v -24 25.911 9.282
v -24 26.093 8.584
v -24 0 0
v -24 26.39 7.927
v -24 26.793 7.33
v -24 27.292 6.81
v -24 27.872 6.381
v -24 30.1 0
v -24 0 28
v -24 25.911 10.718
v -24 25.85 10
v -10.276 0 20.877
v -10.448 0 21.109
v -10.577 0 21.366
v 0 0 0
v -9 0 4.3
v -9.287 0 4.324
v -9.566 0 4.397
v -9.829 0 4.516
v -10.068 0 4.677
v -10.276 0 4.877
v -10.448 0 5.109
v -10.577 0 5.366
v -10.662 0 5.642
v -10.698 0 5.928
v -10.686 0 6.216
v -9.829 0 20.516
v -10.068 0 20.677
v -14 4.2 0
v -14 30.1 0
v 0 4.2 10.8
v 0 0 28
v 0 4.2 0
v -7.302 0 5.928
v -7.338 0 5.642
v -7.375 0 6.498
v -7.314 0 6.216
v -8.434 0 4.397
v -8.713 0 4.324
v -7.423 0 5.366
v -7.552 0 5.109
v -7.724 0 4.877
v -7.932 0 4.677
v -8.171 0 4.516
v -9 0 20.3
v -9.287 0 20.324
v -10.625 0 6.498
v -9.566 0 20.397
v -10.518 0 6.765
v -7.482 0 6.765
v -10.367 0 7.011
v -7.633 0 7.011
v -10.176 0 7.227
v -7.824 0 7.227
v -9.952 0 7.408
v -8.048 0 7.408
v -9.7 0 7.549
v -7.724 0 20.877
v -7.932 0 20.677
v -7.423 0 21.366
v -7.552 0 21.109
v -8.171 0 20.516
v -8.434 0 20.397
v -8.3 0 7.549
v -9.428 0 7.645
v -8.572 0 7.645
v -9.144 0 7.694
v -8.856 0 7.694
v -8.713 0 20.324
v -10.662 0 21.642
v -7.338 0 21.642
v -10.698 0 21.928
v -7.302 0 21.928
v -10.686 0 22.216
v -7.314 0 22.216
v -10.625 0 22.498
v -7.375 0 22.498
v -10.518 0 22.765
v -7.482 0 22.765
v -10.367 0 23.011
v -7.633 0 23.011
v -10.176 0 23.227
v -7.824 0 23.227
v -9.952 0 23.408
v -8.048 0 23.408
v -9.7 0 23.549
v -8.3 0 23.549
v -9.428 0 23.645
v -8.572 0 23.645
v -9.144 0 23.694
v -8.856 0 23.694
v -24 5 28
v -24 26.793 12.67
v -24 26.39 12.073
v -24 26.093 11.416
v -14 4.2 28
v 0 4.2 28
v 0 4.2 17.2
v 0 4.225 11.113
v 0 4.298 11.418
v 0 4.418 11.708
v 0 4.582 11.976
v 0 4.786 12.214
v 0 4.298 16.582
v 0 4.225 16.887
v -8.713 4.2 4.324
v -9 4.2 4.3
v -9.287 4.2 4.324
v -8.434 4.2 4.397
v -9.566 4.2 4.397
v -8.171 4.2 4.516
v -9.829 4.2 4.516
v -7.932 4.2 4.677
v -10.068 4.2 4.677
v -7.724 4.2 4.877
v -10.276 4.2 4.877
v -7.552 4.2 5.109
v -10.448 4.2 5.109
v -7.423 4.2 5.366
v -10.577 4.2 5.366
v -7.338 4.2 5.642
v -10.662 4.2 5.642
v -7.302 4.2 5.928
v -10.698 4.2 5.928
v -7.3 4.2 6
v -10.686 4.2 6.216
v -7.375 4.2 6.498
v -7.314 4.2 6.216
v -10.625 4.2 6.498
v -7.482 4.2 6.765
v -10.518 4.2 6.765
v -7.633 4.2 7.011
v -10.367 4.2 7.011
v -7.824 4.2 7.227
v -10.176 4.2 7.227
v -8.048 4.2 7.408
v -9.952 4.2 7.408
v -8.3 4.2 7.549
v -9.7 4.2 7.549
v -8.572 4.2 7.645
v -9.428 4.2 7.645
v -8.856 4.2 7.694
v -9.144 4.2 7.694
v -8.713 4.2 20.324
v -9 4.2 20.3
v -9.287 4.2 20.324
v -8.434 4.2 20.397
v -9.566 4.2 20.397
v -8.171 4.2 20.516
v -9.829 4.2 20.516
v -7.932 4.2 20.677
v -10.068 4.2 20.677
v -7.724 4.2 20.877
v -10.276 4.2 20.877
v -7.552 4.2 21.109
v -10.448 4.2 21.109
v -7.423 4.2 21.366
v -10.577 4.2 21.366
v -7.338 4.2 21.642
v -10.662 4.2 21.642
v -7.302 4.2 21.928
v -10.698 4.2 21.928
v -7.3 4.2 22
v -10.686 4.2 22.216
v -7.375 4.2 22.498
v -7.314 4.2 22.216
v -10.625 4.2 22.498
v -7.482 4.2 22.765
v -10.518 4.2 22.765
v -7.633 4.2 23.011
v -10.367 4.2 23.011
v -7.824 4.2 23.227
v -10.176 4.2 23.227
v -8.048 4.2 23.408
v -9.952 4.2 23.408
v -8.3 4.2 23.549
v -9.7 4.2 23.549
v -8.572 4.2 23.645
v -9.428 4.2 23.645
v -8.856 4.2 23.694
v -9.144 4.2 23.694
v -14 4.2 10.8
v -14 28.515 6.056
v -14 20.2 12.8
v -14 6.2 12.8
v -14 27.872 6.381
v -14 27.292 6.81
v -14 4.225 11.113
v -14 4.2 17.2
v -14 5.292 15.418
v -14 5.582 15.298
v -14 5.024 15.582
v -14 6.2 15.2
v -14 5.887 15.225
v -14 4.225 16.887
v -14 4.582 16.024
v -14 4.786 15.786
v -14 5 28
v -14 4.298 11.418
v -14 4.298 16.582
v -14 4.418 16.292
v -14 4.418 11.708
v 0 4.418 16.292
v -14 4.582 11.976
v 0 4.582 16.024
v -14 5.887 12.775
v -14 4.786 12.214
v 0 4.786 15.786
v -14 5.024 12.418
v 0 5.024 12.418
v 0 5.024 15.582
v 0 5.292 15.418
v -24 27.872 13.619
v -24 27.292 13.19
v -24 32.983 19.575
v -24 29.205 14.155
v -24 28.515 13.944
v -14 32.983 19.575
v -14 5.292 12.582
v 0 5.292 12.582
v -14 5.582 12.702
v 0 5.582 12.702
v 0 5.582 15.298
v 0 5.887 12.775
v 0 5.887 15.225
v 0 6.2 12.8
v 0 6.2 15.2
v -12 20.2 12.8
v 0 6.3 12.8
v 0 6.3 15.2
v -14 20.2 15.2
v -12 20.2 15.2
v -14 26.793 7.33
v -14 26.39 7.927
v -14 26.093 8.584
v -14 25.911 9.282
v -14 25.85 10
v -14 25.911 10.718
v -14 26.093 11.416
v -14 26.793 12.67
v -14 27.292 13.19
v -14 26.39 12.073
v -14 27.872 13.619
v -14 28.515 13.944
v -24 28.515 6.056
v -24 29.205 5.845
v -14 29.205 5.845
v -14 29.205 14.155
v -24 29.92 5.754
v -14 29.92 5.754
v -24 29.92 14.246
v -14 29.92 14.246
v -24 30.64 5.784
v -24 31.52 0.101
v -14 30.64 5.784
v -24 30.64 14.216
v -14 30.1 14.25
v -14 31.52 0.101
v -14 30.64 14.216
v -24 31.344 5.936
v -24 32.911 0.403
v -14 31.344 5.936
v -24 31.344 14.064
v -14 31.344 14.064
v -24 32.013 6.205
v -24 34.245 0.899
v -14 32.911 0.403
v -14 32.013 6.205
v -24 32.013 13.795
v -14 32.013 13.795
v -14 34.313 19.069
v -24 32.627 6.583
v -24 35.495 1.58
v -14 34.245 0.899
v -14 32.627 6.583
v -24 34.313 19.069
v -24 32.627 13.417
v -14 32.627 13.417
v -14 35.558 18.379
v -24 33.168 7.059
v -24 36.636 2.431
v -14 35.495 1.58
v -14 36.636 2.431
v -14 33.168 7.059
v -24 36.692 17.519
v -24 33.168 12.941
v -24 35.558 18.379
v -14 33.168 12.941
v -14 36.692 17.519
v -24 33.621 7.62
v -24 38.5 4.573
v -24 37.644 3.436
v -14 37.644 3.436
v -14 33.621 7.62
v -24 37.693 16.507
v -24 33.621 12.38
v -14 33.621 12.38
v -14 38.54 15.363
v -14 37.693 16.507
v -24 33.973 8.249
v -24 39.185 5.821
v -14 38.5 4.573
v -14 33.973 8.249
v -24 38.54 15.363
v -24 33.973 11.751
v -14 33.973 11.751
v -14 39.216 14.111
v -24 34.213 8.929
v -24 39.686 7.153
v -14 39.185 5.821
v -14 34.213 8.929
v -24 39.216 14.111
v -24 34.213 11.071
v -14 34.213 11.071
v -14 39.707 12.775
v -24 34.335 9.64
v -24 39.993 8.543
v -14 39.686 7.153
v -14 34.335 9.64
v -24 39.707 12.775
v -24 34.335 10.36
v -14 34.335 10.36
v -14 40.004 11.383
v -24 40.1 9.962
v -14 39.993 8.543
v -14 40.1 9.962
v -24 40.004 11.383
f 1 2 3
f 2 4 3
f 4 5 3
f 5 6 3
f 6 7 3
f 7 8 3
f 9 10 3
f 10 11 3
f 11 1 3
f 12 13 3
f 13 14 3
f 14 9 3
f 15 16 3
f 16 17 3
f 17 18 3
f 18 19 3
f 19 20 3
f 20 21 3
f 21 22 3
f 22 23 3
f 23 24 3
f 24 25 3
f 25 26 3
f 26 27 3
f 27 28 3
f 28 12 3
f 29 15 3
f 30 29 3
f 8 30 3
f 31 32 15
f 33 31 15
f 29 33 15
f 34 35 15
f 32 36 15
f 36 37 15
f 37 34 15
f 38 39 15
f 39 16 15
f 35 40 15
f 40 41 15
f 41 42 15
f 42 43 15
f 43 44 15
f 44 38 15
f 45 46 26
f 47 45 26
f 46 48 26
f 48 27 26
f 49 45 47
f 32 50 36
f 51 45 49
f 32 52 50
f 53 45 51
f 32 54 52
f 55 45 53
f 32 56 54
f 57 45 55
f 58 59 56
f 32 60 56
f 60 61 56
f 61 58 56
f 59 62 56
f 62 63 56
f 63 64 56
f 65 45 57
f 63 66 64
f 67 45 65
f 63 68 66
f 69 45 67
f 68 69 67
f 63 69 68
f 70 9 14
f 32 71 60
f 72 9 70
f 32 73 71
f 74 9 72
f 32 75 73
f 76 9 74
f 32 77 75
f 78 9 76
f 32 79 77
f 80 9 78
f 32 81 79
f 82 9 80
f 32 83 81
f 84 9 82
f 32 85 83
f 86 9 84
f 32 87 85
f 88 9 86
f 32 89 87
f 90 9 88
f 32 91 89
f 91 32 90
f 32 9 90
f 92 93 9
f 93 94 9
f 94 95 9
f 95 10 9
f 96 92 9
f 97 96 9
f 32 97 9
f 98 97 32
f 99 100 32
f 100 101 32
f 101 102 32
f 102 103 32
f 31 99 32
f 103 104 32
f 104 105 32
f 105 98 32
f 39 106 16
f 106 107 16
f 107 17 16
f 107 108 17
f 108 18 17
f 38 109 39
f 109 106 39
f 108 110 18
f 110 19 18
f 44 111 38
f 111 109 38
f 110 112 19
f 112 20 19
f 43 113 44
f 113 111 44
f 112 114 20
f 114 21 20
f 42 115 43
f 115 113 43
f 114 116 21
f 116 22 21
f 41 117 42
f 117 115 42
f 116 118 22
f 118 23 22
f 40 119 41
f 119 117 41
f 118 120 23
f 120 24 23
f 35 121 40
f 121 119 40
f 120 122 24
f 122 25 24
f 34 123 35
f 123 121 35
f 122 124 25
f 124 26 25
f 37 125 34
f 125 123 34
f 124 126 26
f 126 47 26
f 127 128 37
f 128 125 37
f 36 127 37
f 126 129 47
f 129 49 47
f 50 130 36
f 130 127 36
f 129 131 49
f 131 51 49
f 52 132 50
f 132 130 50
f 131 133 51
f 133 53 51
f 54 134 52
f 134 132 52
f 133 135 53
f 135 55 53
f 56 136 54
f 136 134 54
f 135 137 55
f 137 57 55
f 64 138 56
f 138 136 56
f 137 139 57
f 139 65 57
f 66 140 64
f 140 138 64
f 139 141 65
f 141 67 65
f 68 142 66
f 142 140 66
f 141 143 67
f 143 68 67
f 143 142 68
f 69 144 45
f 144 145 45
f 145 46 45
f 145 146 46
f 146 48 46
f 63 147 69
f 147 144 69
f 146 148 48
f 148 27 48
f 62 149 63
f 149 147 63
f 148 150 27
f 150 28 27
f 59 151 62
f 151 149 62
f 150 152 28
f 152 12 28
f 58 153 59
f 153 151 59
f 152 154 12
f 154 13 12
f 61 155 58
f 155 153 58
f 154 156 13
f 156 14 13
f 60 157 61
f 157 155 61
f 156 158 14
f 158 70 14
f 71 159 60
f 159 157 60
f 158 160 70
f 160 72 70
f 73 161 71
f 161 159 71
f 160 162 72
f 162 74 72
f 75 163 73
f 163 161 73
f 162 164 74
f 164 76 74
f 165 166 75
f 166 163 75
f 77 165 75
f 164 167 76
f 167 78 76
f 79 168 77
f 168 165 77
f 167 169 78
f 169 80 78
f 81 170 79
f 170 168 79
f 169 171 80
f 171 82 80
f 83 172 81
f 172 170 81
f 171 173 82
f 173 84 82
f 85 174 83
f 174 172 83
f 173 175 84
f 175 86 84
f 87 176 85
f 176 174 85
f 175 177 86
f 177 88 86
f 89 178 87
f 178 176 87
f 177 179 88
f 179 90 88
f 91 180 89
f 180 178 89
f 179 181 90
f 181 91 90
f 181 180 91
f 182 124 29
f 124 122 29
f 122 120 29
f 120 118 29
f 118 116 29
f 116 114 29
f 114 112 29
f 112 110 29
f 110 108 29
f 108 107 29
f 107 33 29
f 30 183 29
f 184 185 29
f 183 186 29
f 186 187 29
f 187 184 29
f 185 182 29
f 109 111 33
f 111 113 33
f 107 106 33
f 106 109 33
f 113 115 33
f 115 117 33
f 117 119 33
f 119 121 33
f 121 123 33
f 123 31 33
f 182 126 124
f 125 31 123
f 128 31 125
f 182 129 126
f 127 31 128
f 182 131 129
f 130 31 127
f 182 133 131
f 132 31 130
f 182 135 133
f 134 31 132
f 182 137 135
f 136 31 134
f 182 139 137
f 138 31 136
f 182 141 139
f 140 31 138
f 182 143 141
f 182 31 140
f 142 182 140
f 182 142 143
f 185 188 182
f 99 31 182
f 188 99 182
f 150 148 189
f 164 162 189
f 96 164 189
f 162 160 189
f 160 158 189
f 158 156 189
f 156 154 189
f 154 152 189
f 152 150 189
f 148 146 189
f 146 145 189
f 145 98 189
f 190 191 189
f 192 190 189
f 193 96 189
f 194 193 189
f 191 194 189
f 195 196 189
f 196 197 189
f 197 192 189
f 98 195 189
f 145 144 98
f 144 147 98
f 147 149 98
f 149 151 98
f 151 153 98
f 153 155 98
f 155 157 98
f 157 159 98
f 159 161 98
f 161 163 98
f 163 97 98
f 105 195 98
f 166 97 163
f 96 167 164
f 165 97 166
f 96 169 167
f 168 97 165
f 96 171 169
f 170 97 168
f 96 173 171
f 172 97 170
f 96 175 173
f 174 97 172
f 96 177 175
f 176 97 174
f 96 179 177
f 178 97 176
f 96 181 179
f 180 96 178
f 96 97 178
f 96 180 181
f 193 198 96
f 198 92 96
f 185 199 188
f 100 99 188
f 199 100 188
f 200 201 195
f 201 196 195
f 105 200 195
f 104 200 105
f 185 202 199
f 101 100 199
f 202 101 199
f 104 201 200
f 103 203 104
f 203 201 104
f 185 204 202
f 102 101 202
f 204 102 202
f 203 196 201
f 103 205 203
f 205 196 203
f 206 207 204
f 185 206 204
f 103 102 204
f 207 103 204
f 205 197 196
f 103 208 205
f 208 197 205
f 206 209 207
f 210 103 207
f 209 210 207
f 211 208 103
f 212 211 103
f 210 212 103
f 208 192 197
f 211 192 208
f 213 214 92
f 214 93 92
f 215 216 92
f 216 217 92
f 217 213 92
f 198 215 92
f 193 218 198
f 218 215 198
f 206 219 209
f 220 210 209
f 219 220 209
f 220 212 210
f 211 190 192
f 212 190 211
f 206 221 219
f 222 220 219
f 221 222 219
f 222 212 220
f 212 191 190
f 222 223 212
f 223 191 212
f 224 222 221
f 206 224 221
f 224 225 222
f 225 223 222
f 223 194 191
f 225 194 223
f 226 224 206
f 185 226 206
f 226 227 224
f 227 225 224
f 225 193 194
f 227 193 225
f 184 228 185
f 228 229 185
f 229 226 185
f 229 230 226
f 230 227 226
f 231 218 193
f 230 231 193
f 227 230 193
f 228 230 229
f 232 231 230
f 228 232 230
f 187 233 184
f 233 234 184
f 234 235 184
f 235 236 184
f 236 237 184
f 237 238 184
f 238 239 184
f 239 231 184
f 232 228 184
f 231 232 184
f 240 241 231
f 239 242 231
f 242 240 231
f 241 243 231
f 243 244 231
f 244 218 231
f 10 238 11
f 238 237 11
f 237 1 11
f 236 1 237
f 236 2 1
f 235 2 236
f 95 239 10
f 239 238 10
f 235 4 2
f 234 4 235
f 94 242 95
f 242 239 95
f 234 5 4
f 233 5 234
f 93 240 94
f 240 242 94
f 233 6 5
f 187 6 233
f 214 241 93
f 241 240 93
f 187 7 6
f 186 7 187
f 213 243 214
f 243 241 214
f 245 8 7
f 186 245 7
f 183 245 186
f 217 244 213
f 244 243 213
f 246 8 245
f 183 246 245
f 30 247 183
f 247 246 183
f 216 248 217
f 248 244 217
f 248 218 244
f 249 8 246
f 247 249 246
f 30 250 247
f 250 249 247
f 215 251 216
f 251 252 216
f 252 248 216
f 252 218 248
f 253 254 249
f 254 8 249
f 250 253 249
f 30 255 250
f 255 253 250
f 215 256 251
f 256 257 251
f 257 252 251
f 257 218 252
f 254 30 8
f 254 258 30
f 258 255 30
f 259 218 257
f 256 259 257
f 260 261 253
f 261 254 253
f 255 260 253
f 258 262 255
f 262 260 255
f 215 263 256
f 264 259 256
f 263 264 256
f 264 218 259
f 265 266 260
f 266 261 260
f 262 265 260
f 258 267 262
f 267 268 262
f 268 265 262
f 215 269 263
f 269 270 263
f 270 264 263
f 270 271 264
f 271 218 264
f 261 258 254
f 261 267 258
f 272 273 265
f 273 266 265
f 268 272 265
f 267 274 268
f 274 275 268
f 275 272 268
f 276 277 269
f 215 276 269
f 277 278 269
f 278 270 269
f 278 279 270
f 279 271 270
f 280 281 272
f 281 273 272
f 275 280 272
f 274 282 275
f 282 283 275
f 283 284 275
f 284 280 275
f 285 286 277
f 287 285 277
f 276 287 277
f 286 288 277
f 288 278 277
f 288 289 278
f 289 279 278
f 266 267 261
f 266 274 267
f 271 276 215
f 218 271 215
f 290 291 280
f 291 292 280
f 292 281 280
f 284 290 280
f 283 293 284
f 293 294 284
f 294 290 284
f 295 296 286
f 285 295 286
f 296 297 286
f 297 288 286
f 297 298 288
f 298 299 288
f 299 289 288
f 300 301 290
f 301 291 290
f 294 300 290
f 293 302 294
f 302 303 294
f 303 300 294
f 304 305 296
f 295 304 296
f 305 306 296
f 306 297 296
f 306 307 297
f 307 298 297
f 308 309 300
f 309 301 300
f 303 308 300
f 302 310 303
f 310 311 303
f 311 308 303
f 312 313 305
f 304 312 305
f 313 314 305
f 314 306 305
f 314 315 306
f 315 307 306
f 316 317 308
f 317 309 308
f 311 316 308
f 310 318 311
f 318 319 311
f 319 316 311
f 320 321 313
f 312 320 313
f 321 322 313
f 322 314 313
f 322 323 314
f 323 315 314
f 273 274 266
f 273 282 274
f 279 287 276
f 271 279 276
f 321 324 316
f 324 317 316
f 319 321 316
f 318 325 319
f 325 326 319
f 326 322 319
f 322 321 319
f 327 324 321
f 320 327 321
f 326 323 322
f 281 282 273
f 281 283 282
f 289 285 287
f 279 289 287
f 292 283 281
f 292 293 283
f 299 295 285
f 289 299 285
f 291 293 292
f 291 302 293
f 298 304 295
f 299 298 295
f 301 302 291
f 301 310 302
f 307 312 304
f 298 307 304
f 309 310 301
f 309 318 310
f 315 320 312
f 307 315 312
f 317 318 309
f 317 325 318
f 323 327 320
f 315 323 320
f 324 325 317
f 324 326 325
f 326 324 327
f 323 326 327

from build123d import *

# Parameters (mm, degrees)
SALIENTE_EXTRUIR1_DEPTH = 28
CROQUIS2_R              = 4.25
CORTAR_EXTRUIR1_DEPTH   = 25
CORTAR_EXTRUIR2_REACH   = 42.1
CROQUIS3_R              = 1.7
SALIENTE_EXTRUIR2_DEPTH = 1.2
REDONDEO1_R             = 2


with BuildPart() as part:
    # Croquis1 → Saliente-Extruir1 (new body)
    with BuildSketch(Plane.XY):
        Polygon((0, 4.2), (-14, 4.2), (-14, 40.1), (-24, 40.1), (-24, 0), (0, 0), align=None)
    extrude(amount=SALIENTE_EXTRUIR1_DEPTH)

    # Croquis2 → Cortar-Extruir1 (cut, through all)
    with BuildSketch(Plane.ZY.offset(24)):
        with Locations((10, 30.1)):
            Circle(CROQUIS2_R)
        with BuildLine():
            Line((28, 5), (19.575461286, 32.982800922))
            ThreePointArc((19.575461286, 32.982800922), (8.54305334, 39.993296035), (0, 30.1))
            Line((0, 30.1), (0, 29.1))
            Line((0, 29.1), (-1, 29.1))
            Line((-1, 29.1), (-1, 41.1))
            Line((-1, 41.1), (29, 41.1))
            Line((29, 41.1), (29, 5))
            Line((29, 5), (28, 5))
        make_face()
    extrude(amount=-CORTAR_EXTRUIR1_DEPTH, mode=Mode.SUBTRACT)

    # Croquis3 → Cortar-Extruir2 (cut, up to next)
    with BuildSketch(Plane.XZ, mode=Mode.PRIVATE) as cortar_extruir2_sk1:
        with Locations((-9, 22)):
            Circle(CROQUIS3_R)
    cortar_extruir2_tool1 = extrude(cortar_extruir2_sk1.sketch, amount=-CORTAR_EXTRUIR2_REACH, mode=Mode.PRIVATE) & part.part
    add(cortar_extruir2_tool1.solids().sort_by_distance((-9, 0, 22))[0], mode=Mode.SUBTRACT)
    # Croquis3 → Cortar-Extruir2 (cut, up to next)
    with BuildSketch(Plane.XZ, mode=Mode.PRIVATE) as cortar_extruir2_sk2:
        with Locations((-9, 6)):
            Circle(CROQUIS3_R)
    cortar_extruir2_tool2 = extrude(cortar_extruir2_sk2.sketch, amount=-CORTAR_EXTRUIR2_REACH, mode=Mode.PRIVATE) & part.part
    add(cortar_extruir2_tool2.solids().sort_by_distance((-9, 0, 6))[0], mode=Mode.SUBTRACT)

    # Croquis4 → Saliente-Extruir2 (add, symmetric)
    with BuildSketch(Plane(origin=(0, 0, 14), x_dir=(-1, 0, 0), z_dir=(0, 0, -1))):
        Polygon((0, 4.2), (14, 4.2), (14, 20.2), (12, 20.2), (0, 6.3), align=None)
    extrude(amount=SALIENTE_EXTRUIR2_DEPTH, both=True)

    # Redondeo1
    redondeo1_edges = [part.edges().sort_by_distance(p)[0] for p in [
        (-7, 4.2, 15.2),
        (-7, 4.2, 12.8),
    ]]
    fillet(redondeo1_edges, radius=REDONDEO1_R)


solid = part.part
